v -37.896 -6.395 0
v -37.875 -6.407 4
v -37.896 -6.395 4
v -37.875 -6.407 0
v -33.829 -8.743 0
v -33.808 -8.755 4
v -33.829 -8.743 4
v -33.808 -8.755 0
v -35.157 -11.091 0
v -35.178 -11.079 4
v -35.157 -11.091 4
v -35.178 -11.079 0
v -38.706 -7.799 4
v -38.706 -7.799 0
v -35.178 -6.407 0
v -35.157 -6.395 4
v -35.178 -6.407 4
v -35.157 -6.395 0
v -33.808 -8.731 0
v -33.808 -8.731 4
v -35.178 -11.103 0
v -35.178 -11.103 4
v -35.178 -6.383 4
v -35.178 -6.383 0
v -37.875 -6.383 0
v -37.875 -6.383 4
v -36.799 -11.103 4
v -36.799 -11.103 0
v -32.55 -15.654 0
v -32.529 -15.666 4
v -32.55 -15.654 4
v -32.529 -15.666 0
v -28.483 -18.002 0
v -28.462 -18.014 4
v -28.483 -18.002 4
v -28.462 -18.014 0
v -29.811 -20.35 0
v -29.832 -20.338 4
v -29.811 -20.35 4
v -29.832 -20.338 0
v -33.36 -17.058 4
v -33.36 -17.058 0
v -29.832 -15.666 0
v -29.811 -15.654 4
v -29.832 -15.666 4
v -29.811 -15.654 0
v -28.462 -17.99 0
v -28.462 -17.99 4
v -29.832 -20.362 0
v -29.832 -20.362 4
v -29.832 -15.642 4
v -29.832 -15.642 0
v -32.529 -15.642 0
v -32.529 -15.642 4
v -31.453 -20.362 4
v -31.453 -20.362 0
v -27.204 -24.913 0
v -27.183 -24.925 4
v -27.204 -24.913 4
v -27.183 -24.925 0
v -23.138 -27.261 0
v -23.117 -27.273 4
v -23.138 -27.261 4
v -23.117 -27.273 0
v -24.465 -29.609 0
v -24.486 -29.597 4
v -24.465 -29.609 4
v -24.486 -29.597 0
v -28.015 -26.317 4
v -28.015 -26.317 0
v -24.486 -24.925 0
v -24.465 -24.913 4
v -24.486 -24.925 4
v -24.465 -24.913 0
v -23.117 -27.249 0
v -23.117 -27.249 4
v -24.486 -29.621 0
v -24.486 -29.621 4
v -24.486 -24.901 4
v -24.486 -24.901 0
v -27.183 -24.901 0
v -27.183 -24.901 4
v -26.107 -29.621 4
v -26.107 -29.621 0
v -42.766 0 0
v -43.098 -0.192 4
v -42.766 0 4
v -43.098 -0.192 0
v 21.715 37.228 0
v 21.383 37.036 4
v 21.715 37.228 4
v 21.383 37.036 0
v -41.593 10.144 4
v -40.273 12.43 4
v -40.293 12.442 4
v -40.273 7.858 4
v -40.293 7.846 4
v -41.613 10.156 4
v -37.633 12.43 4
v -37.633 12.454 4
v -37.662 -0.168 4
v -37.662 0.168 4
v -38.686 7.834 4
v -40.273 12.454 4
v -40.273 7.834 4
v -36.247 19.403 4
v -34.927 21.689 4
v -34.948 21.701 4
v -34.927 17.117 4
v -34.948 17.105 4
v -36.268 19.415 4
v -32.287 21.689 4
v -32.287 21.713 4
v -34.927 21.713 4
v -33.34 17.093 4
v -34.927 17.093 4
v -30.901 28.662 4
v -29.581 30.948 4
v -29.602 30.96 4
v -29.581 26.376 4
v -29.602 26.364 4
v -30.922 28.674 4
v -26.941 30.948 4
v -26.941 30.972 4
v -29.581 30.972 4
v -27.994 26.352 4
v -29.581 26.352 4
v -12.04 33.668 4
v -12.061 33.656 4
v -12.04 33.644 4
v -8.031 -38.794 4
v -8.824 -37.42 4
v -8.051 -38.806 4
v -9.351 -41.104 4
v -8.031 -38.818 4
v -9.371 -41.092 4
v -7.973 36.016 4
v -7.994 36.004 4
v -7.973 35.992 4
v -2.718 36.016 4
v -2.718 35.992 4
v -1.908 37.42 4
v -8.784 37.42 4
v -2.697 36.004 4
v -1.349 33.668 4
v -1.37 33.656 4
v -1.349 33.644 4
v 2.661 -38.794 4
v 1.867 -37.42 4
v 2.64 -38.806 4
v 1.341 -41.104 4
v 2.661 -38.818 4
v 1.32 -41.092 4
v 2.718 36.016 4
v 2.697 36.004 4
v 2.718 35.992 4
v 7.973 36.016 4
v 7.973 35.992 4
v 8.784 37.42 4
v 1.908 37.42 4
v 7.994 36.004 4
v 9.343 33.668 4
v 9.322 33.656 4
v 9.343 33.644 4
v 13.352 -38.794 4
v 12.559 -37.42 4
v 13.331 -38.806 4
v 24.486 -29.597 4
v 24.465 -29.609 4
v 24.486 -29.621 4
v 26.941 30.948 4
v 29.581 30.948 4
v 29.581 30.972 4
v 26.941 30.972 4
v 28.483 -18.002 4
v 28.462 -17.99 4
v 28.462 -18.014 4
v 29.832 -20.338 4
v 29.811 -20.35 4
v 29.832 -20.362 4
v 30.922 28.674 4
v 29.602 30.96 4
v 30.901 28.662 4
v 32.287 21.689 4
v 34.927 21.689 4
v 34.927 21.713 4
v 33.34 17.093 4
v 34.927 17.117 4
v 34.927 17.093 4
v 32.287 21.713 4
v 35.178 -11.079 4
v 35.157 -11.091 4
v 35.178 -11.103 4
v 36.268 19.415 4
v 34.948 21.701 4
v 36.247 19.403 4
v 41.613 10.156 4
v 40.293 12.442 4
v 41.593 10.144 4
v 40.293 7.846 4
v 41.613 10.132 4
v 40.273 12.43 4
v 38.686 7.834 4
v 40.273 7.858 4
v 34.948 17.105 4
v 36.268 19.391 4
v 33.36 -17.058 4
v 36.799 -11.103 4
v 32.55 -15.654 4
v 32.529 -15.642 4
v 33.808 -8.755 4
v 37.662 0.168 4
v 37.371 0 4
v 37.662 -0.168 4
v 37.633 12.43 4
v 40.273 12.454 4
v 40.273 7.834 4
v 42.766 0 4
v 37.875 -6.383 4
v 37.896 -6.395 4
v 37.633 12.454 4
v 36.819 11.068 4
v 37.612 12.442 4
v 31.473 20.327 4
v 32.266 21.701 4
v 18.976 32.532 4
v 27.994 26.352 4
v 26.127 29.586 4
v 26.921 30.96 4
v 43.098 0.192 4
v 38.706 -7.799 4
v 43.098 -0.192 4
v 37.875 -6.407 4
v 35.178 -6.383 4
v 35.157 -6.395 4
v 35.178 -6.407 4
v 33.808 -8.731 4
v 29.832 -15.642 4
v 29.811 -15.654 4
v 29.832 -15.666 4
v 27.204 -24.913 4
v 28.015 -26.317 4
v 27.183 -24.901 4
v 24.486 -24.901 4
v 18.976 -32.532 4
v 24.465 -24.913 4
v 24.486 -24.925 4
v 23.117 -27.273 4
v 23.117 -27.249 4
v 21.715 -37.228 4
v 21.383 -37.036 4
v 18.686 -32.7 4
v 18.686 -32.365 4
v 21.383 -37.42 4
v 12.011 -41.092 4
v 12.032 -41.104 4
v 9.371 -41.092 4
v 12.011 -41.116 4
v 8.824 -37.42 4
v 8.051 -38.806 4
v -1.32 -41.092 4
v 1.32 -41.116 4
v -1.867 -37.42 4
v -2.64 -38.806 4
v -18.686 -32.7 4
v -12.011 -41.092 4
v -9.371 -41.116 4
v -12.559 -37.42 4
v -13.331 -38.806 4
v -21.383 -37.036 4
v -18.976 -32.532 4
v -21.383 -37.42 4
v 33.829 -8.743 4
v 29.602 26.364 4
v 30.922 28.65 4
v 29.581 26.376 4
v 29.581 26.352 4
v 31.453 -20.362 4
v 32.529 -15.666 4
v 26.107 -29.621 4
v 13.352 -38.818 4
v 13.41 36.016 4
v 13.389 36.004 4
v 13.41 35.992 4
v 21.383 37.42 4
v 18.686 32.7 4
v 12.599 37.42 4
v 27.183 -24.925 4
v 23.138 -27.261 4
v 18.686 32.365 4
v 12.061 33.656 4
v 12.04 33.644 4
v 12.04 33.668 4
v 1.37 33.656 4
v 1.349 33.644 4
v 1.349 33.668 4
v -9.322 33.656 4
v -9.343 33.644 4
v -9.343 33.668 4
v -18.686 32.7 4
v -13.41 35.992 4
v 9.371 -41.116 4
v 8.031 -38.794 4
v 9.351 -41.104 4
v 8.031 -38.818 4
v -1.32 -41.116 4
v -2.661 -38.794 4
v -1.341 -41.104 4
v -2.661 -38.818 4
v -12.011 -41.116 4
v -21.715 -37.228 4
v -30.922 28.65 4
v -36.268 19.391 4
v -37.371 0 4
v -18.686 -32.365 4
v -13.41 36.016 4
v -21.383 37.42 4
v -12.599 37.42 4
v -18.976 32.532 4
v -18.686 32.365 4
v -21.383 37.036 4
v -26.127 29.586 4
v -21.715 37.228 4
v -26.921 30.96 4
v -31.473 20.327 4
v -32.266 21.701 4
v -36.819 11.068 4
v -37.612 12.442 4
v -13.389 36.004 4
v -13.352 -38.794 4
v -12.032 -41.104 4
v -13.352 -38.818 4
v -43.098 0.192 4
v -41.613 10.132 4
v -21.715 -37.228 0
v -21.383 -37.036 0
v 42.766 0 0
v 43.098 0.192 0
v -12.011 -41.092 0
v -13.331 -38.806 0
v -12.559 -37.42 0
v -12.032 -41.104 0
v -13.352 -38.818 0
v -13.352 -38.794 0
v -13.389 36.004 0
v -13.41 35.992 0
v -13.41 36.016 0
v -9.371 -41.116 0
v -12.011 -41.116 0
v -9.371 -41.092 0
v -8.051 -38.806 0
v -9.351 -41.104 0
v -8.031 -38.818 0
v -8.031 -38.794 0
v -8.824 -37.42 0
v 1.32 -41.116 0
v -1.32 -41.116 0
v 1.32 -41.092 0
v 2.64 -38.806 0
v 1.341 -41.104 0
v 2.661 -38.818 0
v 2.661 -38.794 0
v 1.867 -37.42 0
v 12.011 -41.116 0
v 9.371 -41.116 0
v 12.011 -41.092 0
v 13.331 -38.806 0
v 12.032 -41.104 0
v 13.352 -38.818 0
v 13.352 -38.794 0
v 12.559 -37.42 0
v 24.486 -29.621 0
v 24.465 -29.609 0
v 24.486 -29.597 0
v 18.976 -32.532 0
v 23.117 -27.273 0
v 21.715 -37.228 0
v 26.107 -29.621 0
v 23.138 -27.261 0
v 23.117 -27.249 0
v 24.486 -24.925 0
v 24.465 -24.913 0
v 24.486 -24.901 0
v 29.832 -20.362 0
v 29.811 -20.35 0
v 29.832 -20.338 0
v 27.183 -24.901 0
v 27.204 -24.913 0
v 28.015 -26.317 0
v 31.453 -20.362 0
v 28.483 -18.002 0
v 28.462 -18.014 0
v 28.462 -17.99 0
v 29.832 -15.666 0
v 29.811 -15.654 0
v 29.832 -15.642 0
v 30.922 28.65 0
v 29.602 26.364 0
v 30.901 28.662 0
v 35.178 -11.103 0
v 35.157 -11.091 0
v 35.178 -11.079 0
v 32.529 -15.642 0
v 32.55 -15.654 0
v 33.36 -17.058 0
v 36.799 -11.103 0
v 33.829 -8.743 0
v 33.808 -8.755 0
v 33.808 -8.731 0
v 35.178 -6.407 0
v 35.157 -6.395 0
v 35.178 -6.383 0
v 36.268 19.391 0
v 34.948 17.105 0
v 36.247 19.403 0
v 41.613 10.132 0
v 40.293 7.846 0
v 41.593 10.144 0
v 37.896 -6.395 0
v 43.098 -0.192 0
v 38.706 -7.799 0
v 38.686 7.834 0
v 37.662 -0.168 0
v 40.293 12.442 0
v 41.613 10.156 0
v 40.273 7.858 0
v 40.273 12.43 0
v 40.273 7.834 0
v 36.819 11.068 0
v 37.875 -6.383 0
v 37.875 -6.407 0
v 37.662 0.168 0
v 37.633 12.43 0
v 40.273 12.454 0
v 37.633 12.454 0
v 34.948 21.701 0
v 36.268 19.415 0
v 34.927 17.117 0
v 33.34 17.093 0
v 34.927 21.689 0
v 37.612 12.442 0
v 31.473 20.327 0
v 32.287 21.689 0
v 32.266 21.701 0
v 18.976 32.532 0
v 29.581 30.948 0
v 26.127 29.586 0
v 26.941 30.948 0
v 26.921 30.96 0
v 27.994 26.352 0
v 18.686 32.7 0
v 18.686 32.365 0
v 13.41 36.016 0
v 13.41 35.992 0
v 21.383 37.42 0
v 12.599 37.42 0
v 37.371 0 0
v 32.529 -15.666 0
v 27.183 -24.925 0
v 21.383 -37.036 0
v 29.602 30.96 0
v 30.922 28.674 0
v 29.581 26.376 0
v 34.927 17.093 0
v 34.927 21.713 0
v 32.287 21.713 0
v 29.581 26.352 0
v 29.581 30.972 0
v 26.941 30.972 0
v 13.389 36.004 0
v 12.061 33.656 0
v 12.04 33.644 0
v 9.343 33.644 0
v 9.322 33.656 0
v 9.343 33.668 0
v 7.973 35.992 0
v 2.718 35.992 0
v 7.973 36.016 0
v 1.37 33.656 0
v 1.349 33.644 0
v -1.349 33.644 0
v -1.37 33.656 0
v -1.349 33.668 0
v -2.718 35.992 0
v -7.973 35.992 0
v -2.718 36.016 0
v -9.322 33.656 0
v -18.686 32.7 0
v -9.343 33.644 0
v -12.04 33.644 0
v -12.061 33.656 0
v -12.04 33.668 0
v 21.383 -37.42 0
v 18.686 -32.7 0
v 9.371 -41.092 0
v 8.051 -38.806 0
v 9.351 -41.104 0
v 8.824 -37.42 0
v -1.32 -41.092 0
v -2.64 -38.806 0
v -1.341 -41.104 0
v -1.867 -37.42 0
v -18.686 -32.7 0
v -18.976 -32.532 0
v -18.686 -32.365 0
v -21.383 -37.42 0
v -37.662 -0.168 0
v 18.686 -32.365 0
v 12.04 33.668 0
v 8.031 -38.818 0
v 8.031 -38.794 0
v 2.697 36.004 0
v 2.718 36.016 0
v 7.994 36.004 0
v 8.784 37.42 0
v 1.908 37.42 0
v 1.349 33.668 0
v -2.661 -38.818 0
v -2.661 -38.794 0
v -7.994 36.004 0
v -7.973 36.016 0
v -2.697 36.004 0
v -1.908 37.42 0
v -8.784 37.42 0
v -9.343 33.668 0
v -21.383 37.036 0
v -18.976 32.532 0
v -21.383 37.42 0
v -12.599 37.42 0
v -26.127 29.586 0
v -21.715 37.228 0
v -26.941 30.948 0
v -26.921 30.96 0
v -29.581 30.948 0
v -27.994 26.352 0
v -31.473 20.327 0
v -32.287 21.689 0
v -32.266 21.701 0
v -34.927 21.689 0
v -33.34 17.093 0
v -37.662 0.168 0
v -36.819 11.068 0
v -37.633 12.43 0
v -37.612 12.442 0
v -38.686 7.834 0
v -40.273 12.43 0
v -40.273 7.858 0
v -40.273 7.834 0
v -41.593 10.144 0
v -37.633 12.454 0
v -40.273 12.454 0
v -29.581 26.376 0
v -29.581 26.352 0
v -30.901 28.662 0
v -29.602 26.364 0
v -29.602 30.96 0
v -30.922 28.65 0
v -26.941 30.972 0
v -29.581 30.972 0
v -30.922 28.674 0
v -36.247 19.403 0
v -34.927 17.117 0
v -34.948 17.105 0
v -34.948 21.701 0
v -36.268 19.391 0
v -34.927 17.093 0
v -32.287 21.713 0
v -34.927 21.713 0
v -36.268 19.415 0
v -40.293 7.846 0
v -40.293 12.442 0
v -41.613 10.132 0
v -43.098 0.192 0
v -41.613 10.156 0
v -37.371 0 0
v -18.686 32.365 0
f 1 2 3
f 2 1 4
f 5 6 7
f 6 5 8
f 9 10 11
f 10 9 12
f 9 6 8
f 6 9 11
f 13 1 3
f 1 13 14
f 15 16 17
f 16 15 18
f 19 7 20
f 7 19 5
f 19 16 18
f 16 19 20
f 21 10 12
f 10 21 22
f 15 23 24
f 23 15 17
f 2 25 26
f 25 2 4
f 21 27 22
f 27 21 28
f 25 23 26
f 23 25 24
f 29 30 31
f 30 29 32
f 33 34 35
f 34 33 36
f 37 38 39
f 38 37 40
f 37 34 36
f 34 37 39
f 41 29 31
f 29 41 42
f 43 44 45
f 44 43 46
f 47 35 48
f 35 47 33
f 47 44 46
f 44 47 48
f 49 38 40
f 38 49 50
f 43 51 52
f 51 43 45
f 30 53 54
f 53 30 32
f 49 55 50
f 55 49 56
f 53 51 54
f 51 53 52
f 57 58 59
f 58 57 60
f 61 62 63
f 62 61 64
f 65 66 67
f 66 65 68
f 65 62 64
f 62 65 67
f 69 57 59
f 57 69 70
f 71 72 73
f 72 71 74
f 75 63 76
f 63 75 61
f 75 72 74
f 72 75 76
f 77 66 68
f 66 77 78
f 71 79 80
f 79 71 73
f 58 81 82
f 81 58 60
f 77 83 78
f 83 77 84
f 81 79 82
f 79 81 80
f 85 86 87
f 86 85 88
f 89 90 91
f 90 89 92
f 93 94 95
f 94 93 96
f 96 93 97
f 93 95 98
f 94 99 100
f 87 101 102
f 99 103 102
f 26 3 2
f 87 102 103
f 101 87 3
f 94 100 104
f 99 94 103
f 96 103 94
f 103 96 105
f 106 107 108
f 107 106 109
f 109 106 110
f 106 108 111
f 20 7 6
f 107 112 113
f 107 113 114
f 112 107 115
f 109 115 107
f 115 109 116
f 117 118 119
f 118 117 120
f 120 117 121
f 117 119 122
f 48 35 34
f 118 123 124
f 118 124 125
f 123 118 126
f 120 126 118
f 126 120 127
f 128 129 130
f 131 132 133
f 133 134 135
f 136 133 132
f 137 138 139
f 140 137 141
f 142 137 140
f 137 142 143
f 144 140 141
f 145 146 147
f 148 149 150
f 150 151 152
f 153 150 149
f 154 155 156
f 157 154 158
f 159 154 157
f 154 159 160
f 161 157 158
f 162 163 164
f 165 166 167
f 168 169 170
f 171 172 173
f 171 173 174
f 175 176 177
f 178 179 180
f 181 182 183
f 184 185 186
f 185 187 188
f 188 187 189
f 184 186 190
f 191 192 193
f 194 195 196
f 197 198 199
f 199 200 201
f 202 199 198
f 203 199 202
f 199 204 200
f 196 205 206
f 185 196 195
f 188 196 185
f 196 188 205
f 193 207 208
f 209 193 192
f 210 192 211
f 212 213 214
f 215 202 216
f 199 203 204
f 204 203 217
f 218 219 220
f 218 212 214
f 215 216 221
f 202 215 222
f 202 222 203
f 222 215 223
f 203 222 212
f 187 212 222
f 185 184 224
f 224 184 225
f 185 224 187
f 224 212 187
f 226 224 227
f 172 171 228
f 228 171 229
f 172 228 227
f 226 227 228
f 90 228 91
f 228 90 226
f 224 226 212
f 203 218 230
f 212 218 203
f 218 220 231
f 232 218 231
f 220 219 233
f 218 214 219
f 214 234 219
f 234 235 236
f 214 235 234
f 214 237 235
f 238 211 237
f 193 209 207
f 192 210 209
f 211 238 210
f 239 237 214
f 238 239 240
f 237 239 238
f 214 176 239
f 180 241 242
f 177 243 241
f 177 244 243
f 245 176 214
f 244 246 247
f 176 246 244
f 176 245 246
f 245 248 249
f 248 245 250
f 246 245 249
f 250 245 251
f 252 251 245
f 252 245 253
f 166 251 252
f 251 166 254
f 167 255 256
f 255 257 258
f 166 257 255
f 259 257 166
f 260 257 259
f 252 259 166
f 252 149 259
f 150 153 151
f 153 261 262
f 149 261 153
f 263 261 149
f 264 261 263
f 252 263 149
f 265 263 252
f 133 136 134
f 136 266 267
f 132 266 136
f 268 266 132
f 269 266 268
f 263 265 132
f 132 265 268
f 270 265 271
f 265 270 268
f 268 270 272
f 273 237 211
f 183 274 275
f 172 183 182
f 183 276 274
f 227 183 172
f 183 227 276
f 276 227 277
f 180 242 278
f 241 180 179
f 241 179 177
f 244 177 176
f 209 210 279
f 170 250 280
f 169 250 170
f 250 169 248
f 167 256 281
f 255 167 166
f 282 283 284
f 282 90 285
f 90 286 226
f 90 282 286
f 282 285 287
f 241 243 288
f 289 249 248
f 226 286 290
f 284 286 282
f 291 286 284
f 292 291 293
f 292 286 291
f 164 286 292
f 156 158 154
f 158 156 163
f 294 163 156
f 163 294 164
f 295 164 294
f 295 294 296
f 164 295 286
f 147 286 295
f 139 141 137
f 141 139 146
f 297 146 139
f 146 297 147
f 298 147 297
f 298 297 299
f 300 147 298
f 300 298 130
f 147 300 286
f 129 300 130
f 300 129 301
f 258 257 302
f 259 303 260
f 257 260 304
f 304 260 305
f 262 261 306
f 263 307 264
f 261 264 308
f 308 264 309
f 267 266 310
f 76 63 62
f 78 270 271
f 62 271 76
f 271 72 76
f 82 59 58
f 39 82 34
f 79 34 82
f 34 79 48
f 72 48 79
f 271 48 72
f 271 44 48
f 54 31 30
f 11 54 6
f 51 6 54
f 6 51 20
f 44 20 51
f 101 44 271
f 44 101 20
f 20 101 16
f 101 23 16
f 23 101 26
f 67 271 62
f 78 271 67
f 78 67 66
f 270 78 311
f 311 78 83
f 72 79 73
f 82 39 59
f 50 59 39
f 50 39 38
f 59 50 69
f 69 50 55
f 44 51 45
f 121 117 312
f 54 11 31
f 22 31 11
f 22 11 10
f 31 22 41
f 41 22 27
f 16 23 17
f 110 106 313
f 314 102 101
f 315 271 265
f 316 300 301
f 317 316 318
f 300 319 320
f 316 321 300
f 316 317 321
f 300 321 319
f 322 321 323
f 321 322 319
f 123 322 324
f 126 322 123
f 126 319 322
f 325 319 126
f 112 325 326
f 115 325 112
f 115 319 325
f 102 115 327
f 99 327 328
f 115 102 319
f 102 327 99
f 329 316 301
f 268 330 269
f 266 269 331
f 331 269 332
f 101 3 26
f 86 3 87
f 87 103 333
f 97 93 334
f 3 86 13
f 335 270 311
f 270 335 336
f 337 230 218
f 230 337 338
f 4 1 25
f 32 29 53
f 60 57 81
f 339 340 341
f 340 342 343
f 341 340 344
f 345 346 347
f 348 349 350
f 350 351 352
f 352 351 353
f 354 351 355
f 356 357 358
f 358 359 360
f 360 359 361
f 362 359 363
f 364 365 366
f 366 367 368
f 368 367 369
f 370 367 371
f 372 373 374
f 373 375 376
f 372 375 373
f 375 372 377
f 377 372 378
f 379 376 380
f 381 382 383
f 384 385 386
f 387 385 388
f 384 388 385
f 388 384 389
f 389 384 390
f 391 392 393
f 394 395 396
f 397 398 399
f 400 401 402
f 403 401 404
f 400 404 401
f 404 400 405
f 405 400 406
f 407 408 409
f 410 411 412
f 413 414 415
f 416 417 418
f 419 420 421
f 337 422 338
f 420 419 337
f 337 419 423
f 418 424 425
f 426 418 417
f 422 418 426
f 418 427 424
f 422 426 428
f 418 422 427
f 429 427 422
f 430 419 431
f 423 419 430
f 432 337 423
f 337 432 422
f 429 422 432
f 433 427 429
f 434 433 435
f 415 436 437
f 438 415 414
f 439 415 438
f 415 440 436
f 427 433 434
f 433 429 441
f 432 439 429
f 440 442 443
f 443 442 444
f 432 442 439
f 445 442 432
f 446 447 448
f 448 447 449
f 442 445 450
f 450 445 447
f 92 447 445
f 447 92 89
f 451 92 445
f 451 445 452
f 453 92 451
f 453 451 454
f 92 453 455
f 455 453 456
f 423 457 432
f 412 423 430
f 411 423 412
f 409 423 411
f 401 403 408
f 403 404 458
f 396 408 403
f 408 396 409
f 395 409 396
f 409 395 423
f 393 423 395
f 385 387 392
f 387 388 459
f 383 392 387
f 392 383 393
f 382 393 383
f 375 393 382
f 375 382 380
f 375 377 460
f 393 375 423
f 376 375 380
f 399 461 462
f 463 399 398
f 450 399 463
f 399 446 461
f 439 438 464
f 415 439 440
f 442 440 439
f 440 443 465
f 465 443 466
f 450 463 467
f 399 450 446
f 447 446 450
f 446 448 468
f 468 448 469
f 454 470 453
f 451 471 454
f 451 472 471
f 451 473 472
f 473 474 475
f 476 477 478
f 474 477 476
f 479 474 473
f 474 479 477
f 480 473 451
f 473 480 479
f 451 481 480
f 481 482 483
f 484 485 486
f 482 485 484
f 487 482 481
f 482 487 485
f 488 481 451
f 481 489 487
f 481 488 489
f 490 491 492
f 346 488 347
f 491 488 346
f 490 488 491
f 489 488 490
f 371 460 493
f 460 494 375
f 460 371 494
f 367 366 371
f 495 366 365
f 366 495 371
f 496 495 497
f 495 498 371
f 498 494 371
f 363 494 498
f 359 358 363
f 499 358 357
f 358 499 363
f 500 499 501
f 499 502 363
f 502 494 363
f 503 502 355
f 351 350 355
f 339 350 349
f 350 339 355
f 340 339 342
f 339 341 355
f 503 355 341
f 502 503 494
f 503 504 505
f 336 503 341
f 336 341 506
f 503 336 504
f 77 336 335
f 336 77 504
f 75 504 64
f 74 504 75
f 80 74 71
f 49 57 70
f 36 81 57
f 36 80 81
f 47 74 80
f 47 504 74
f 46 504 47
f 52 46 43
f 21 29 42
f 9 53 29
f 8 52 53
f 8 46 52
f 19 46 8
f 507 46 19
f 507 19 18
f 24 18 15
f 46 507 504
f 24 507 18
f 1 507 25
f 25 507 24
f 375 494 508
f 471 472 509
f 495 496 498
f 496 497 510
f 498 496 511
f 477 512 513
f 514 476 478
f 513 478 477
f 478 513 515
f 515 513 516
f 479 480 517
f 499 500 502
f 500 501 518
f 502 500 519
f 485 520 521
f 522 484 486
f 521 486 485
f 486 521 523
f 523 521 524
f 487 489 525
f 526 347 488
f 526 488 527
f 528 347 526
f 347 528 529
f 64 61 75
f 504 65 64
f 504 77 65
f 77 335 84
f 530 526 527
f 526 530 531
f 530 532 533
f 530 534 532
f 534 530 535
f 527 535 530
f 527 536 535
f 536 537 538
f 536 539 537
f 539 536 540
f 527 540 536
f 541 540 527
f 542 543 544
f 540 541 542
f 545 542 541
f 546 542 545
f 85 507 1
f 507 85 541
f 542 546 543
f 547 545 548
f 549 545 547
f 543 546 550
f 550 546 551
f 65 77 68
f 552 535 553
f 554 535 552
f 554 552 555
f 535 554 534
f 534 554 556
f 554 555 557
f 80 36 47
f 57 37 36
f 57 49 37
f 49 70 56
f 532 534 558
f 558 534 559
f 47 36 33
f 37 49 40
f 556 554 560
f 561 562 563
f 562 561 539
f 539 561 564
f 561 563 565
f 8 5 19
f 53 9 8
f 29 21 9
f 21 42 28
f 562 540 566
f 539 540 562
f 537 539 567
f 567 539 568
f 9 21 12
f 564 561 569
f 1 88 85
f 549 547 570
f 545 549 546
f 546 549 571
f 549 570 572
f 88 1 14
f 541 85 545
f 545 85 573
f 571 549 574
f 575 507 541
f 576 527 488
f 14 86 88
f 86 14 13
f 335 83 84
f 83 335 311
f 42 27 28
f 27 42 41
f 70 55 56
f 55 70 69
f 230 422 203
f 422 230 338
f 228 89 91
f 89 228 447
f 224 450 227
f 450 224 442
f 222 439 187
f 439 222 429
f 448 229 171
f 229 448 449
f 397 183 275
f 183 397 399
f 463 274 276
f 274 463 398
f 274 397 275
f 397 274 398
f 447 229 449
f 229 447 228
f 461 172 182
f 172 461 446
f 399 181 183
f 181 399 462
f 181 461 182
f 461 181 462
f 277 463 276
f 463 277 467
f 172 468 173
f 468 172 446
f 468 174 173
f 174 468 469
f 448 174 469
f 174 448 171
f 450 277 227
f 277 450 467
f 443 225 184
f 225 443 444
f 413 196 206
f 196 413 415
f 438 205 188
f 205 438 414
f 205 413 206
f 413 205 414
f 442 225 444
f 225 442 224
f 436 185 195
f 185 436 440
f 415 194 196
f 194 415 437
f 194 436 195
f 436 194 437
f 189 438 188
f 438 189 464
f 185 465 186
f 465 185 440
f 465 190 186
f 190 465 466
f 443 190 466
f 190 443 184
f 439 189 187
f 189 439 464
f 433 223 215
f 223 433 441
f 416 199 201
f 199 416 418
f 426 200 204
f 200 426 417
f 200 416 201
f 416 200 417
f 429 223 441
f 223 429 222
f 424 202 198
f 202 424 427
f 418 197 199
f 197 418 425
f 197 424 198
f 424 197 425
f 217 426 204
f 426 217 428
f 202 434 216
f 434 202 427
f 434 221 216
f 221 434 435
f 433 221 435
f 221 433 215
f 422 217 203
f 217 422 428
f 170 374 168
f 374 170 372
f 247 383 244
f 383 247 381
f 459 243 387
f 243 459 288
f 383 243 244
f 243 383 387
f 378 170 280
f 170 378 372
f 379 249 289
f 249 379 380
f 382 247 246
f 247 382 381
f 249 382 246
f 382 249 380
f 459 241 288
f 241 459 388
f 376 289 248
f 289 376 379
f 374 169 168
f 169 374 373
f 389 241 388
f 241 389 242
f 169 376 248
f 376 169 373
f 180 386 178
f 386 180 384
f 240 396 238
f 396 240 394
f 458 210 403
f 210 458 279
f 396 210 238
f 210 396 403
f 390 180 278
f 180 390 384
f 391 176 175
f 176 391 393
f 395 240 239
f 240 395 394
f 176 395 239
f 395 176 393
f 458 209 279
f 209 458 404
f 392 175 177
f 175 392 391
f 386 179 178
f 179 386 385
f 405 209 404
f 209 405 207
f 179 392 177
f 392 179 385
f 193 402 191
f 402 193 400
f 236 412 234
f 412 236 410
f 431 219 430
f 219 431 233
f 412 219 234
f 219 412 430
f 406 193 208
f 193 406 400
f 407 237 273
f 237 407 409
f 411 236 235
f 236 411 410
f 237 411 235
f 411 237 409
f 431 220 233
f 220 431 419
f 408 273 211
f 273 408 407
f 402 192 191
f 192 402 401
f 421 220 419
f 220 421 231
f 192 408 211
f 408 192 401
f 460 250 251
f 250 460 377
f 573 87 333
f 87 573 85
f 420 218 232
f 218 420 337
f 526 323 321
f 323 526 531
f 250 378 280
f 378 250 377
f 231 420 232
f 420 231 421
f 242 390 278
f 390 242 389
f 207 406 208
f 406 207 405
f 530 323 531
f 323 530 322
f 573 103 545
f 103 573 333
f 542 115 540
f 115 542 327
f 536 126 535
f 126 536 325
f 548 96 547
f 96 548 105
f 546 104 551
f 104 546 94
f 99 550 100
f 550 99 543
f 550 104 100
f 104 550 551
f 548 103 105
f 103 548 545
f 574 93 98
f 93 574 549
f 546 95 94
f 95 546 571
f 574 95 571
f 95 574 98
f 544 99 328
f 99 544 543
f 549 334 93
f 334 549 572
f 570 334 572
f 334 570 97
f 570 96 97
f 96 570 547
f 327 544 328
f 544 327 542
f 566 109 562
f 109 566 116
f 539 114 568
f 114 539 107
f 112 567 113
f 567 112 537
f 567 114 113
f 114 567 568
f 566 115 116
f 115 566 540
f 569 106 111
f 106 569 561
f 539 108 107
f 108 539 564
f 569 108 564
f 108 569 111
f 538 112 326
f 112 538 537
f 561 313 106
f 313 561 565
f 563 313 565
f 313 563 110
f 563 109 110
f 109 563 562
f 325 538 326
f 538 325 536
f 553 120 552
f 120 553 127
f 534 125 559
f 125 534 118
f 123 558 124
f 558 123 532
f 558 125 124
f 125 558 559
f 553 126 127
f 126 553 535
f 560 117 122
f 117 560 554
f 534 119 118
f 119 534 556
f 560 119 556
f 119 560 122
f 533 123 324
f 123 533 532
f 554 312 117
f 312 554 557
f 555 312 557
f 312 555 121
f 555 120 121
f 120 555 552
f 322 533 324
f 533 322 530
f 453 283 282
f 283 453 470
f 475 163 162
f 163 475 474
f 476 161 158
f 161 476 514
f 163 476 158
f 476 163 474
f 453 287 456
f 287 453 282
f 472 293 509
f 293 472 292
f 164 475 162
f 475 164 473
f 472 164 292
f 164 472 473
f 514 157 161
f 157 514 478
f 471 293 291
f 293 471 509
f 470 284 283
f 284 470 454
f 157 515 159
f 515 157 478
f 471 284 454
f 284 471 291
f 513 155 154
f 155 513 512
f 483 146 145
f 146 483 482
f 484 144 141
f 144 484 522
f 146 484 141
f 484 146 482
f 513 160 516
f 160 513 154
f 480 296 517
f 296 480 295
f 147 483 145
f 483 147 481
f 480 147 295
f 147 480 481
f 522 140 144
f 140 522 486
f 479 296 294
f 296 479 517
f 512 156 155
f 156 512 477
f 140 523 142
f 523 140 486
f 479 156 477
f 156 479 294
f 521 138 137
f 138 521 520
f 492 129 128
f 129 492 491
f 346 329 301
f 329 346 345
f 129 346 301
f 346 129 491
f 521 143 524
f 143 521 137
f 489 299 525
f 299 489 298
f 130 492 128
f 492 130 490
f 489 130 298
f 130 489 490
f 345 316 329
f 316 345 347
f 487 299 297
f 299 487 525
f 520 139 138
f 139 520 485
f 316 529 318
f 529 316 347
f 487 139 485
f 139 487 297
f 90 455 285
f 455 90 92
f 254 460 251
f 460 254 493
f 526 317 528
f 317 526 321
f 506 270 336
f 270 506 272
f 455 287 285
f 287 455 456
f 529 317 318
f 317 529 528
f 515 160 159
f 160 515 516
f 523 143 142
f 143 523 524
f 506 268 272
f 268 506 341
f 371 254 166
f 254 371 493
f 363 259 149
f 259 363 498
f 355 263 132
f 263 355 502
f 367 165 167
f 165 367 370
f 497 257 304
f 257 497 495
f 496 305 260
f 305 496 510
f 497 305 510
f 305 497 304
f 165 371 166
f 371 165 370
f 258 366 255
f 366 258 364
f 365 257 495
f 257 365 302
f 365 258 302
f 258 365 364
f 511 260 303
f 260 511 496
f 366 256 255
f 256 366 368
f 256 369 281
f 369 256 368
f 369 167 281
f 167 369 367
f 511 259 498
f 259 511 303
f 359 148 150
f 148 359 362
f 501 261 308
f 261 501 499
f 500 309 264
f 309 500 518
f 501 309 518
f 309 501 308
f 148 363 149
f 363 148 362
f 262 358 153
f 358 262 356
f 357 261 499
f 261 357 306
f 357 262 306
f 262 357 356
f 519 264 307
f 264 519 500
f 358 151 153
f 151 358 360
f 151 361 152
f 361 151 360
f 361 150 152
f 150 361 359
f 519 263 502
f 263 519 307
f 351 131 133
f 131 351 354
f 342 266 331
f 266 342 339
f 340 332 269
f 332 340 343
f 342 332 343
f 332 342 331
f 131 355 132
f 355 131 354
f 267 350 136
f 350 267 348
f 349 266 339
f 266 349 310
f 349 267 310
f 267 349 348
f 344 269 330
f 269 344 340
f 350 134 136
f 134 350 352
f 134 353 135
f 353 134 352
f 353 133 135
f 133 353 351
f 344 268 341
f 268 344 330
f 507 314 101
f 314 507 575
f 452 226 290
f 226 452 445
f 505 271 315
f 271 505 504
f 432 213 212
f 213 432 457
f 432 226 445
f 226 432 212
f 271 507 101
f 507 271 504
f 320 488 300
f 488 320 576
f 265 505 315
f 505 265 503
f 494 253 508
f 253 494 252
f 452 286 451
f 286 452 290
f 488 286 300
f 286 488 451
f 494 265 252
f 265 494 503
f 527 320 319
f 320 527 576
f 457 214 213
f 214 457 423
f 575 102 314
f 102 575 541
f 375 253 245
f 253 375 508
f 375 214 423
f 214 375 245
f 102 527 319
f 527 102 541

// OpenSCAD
/* 
    This is the hex that is most likely compatibile with the Hive system 
    HEX_HEIGHT = 65.4;
    WALL_THICKNESS = 4.72;
    DEPTH = 4;
    BACK_WALL_TYPE = 0;
    TOLERANCE = 0.1;
*/

HEX_HEIGHT = 65.4;
WALL_THICKNESS = 4.72;
DEPTH = 4;
BACK_WALL_TYPE = 0;
TOLERANCE = 0.1;

hive_hex(HEX_HEIGHT, WALL_THICKNESS, DEPTH, BACK_WALL_TYPE, TOLERANCE);



module row_of_connectors(cube_width, cube_height, cube_depth, connector_size, position, offset_ratio){
    /*
    This module draws a raw of connectors
    
    */
    x_translation = 0.25*cube_width;    
    y_translation = position*(cube_height/2 + connector_size/2 - connector_size*offset_ratio);      

    for (n = [-1, 0, 1]) {
        translate([x_translation*n,y_translation,0]) 
        hexagon(connector_size, cube_depth*1.0);
        //cube([connector_size, connector_size, connector_size], true);
    }        
}

module cube_with_connectors(dimmensions, connector_size, tolerance) {
    hex_side_width = dimmensions[0];
    hex_height = dimmensions[1];
    hive_depth = dimmensions[2]; 
    
    offset_ratio = 0.8;
    negative_position = -1; 
    positive_position = 1;  
    
    echo (str("Tolerance: ",tolerance, "resulted in connector sizes",
    "\nNEGATIVE: ", connector_size, "\nPOSITIVE:", connector_size-tolerance,"\n"));
        
    union(){
        difference(){
            cube(dimmensions, true);
            row_of_connectors(hex_side_width, hex_height, hive_depth*2, connector_size, 
            negative_position, offset_ratio);
        }

        row_of_connectors(hex_side_width, hex_height, hive_depth, connector_size-tolerance, positive_position, 
        1 - offset_ratio);
    }
}

// Insipired by https://github.com/openscad/MCAD
module hexagon_with_connectors(size, connector_size, height, tolerance) {
  width = size/1.75;
  for (r = [-60, 60, 180]) {
      rotate([0,0,r]) 
      cube_with_connectors([width, size, height], connector_size, tolerance);
  }
}

// Taken from https://github.com/openscad/MCAD
module hexagon(size, height) {
  width = size/1.75;
  for (r = [-60, 0, 60]){
      rotate([0,0,r]) 
      cube([width, size, height], true);
  }
}

function total_height(inner_height, wall_thickness) = 
    /*
    Calculates total height based on inner height and wall thickness
    */
    inner_height + wall_thickness*2;

module back_wall(height, thickness, type){
    /*
    Back wall of the container - optional
    type:
    0 - none
    1 - solid
    2 - openwork (ajour-like), to be done
    */
    
    if (type==0) {
        // no wall
    }
    
    if (type==1) {
        // solid wall
        translate([0,0,thickness/2])
        hexagon(height, thickness);          
    }
}

module hive_hex(base_inner_height, base_wall_thickness, 
                hive_depth, back_wall_type, 
                tolerance){
    /*
    base_inner_height - this is important to define the inner height compatible with existing drawers
    base_wall_thickness - this defines the 
    */
    base_total_height = total_height(base_inner_height, base_wall_thickness);
    
    union(){
        back_wall(base_total_height, 2, back_wall_type);
        translate([0,0,hive_depth/2]) 
        difference(){
            hexagon_with_connectors(base_total_height, base_wall_thickness, 
                                    hive_depth, tolerance);
            hexagon(base_inner_height, hive_depth*2);
        };
    }
}
